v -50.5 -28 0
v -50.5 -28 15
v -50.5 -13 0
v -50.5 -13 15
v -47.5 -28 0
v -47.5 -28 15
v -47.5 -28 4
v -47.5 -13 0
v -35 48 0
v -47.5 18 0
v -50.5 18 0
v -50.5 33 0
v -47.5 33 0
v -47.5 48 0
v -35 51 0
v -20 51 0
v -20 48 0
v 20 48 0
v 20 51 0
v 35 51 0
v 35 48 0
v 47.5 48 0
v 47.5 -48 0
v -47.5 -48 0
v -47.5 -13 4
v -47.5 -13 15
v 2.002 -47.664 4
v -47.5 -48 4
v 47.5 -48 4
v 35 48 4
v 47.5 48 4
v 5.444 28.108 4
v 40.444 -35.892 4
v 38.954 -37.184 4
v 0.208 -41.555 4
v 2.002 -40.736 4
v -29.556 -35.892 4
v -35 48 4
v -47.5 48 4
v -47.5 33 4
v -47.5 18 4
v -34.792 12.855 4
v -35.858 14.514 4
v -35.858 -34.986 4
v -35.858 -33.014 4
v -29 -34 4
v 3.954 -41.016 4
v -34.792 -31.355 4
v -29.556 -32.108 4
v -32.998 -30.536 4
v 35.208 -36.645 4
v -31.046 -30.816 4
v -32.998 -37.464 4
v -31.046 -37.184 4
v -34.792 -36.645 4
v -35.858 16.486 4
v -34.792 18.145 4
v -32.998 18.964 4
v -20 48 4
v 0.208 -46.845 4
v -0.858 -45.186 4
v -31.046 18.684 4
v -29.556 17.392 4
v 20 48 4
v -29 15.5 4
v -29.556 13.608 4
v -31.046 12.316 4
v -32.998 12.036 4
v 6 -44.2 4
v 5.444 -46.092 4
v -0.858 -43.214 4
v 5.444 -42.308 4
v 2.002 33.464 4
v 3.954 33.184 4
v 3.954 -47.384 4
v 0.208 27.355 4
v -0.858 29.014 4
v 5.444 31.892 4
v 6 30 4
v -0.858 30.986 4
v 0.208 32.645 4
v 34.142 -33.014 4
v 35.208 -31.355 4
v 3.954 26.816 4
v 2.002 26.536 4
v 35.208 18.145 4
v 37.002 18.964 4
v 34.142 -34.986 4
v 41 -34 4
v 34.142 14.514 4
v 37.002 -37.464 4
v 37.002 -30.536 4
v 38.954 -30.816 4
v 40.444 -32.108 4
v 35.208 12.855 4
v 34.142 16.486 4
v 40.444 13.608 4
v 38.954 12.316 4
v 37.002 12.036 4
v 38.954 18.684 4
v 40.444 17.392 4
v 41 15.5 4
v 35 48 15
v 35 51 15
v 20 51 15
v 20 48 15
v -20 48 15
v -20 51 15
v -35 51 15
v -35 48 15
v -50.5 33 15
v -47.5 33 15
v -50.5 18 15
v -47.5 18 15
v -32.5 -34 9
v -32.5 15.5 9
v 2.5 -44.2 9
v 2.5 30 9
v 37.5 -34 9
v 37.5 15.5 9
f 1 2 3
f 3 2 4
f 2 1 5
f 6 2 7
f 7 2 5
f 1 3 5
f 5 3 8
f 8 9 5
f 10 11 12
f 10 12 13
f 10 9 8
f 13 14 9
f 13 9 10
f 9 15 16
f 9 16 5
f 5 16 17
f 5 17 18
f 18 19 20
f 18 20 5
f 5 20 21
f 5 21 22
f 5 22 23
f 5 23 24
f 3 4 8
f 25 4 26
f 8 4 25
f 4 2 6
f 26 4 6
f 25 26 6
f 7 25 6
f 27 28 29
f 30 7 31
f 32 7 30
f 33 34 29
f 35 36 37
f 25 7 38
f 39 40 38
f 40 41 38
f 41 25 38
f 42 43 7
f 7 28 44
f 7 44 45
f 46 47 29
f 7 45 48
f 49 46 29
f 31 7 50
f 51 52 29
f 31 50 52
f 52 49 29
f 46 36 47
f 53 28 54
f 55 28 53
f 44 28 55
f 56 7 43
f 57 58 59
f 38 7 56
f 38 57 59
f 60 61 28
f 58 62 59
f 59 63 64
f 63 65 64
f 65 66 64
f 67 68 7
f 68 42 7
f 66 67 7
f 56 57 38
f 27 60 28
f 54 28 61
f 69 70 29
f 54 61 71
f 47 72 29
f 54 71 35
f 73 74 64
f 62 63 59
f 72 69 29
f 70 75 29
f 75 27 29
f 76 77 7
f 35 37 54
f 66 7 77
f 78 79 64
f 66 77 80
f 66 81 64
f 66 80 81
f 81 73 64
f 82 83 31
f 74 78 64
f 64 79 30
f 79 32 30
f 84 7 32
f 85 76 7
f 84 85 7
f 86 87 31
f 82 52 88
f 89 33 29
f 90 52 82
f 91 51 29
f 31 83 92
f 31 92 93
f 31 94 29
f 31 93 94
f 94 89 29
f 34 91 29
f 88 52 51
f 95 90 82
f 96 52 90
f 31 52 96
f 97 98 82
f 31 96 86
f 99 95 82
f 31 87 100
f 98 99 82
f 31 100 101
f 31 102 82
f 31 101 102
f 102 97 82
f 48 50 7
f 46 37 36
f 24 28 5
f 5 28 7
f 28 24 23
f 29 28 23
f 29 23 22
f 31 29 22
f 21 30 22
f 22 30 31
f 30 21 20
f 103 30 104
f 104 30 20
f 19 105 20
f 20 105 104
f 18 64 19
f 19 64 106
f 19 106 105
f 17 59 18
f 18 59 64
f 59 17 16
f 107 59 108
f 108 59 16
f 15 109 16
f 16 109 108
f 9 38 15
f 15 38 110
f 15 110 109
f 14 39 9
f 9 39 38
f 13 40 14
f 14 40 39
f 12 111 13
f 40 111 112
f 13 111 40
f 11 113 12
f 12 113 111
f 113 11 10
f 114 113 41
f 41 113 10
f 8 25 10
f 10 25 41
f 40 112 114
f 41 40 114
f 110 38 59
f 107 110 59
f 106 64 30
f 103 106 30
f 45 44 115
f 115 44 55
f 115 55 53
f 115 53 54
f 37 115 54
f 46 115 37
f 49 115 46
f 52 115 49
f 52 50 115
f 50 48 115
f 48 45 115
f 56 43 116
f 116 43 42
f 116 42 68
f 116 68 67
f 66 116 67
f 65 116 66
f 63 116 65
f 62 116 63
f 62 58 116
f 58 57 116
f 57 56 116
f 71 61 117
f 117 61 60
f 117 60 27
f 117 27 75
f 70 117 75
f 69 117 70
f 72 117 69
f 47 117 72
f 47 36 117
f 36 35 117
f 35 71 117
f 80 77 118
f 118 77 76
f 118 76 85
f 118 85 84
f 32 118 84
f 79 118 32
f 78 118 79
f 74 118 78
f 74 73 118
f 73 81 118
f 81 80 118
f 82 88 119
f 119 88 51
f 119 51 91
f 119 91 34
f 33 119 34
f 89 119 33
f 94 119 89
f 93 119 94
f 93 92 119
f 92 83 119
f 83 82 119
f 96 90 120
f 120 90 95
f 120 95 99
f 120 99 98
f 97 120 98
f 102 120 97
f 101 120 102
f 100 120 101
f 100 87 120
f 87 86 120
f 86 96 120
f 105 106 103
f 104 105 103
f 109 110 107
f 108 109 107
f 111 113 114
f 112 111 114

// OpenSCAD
// file: shapes.scad
/*
 *  OpenSCAD Shapes Library (www.openscad.at)
 *  Copyright (C) 2009  Catarina Mota <clifford@clifford.at>
 *
 *  This program is free software; you can redistribute it and/or modify
 *  it under the terms of the GNU General Public License as published by
 *  the Free Software Foundation; either version 2 of the License, or
 *  (at your option) any later version.
 *
 *  This program is distributed in the hope that it will be useful,
 *  but WITHOUT ANY WARRANTY; without even the implied warranty of
 *  MERCHANTABILITY or FITNESS FOR A PARTICULAR PURPOSE.  See the
 *  GNU General Public License for more details.
 *
 *  You should have received a copy of the GNU General Public License
 *  along with this program; if not, write to the Free Software
 *  Foundation, Inc., 59 Temple Place, Suite 330, Boston, MA  02111-1307  USA
 *
*/


//box(width, height, depth);
//roundedBox(width, height, depth, factor);
//cone(height, radius);
//oval(width, height, depth);
//tube(height, radius, wall);
//ovalTube(width, height, depth, wall);
//hexagon(height, depth);
//octagon(height, depth);
//dodecagon(height, depth);
//hexagram(height, depth);
//rightTriangle(adjacent, opposite, depth);
//equiTriangle(side, depth);
//12ptStar(height, depth);

//----------------------

//roundedBox(120, 60, 3, 8);

//----------------------

module box(w,h,d) {
	scale ([w,h,d]) cube(1, true);
}

module roundedBox(w,h,d,f){
	difference(){
		box(w,h,d);
		translate([-w/2,h/2,0]) cube(w/(f/2),true);
		translate([w/2,h/2,0]) cube(w/(f/2),true);
		translate([-w/2,-h/2,0]) cube(w/(f/2),true);
		translate([w/2,-h/2,0]) cube(w/(f/2),true);
	}
	translate([-w/2+w/f,h/2-w/f,-d/2]) cylinder(d,w/f, w/f);
	translate([w/2-w/f,h/2-w/f,-d/2]) cylinder(d,w/f, w/f);
	translate([-w/2+w/f,-h/2+w/f,-d/2]) cylinder(d,w/f, w/f);
	translate([w/2-w/f,-h/2+w/f,-d/2]) cylinder(d,w/f, w/f);
}

module cone(height, radius) {
		cylinder(height, radius, 0);
}

module oval(w,h,d) {
	scale ([w/100, h/100, 1]) cylinder(d, 50, 50);
}

module tube(height, radius, wall) {
	difference(){
		cylinder(height, radius, radius);
		cylinder(height, radius-wall, radius-wall);
	}
}

module ovalTube(w,h,d,wall) {
	difference(){
		scale ([w/100, h/100, 1]) cylinder(d, 50, 50);
		scale ([w/100, h/100, 1]) cylinder(d, 50-wall, 50-wall);
	}
}

module hexagon(height, depth) {
	boxWidth=height/1.75;
		union(){
			box(boxWidth, height, depth);
			rotate([0,0,60]) box(boxWidth, height, depth);
			rotate([0,0,-60]) box(boxWidth, height, depth);
		}
}

module octagon(height, depth) {
	intersection(){
		box(height, height, depth);
		rotate([0,0,45]) box(height, height, depth);
	}
}

module dodecagon(height, depth) {
	intersection(){
		hexagon(height, depth);
		rotate([0,0,90]) hexagon(height, depth);
	}
}

module hexagram(height, depth) {
	boxWidth=height/1.75;
	intersection(){
		box(height, boxWidth, depth);
		rotate([0,0,60]) box(height, boxWidth, depth);
	}
	intersection(){
		box(height, boxWidth, depth);
		rotate([0,0,-60]) box(height, boxWidth, depth);
	}
	intersection(){
		rotate([0,0,60]) box(height, boxWidth, depth);
		rotate([0,0,-60]) box(height, boxWidth, depth);
	}
}

module rightTriangle(adjacent, opposite, depth) {
	difference(){
		translate([-adjacent/2,opposite/2,0]) box(adjacent, opposite, depth);
		translate([-adjacent,0,0]){
			rotate([0,0,atan(opposite/adjacent)]) dislocateBox(adjacent*4, opposite, depth);
		}
	}
}

module equiTriangle(side, depth) {
	difference(){
		translate([-side/2,side/2,0]) box(side, side, depth);
		rotate([0,0,30]) dislocateBox(side*2, side, depth);
		translate([-side,0,0]){
			rotate([0,0,60]) dislocateBox(side*2, side, depth);
		}
	}
}

module 12ptStar(height, depth) {
	starNum=3;
	starAngle=360/starNum;
	for (s=[1:starNum]){
		rotate([0, 0, s*starAngle]) box(height, height, depth);
	}
}

//-----------------------
//MOVES THE ROTATION AXIS OF A BOX FROM ITS CENTER TO THE BOTTOM LEFT CORNER
module dislocateBox(w,h,d){
	translate([w/2,h,0]){
		difference(){
			box(w, h*2, d+1);
			translate([-w,0,0]) box(w, h*2, d+1);
		}
	}
}
// main file
include <shapes.scad>  // using Catarina Mota's shapes library

//build platform
//translate ([-51,-51,-10]) cube ([102,102,5]);

translate ([-47.5,-48,0]) cube ([95,96,4]);
translate ([20,48,0]) cube ([15,3,15]);
translate ([-35,48,0]) cube ([15,3,15]);
translate ([-50.5,-28,0]) cube ([3,15,15]);
translate ([-50.5,18,0]) cube ([3,15,15]);

translate ([-32.5,-34,4]) cone (5,3.5);
translate ([2.5,-44.2,4]) cone (5,3.5);
translate ([37.5,-34,4]) cone (5,3.5);

translate ([-32.5,15.5,4]) cone (5,3.5);
translate ([2.5,30,4]) cone (5,3.5);
translate ([37.5,15.5,4]) cone (5,3.5);
